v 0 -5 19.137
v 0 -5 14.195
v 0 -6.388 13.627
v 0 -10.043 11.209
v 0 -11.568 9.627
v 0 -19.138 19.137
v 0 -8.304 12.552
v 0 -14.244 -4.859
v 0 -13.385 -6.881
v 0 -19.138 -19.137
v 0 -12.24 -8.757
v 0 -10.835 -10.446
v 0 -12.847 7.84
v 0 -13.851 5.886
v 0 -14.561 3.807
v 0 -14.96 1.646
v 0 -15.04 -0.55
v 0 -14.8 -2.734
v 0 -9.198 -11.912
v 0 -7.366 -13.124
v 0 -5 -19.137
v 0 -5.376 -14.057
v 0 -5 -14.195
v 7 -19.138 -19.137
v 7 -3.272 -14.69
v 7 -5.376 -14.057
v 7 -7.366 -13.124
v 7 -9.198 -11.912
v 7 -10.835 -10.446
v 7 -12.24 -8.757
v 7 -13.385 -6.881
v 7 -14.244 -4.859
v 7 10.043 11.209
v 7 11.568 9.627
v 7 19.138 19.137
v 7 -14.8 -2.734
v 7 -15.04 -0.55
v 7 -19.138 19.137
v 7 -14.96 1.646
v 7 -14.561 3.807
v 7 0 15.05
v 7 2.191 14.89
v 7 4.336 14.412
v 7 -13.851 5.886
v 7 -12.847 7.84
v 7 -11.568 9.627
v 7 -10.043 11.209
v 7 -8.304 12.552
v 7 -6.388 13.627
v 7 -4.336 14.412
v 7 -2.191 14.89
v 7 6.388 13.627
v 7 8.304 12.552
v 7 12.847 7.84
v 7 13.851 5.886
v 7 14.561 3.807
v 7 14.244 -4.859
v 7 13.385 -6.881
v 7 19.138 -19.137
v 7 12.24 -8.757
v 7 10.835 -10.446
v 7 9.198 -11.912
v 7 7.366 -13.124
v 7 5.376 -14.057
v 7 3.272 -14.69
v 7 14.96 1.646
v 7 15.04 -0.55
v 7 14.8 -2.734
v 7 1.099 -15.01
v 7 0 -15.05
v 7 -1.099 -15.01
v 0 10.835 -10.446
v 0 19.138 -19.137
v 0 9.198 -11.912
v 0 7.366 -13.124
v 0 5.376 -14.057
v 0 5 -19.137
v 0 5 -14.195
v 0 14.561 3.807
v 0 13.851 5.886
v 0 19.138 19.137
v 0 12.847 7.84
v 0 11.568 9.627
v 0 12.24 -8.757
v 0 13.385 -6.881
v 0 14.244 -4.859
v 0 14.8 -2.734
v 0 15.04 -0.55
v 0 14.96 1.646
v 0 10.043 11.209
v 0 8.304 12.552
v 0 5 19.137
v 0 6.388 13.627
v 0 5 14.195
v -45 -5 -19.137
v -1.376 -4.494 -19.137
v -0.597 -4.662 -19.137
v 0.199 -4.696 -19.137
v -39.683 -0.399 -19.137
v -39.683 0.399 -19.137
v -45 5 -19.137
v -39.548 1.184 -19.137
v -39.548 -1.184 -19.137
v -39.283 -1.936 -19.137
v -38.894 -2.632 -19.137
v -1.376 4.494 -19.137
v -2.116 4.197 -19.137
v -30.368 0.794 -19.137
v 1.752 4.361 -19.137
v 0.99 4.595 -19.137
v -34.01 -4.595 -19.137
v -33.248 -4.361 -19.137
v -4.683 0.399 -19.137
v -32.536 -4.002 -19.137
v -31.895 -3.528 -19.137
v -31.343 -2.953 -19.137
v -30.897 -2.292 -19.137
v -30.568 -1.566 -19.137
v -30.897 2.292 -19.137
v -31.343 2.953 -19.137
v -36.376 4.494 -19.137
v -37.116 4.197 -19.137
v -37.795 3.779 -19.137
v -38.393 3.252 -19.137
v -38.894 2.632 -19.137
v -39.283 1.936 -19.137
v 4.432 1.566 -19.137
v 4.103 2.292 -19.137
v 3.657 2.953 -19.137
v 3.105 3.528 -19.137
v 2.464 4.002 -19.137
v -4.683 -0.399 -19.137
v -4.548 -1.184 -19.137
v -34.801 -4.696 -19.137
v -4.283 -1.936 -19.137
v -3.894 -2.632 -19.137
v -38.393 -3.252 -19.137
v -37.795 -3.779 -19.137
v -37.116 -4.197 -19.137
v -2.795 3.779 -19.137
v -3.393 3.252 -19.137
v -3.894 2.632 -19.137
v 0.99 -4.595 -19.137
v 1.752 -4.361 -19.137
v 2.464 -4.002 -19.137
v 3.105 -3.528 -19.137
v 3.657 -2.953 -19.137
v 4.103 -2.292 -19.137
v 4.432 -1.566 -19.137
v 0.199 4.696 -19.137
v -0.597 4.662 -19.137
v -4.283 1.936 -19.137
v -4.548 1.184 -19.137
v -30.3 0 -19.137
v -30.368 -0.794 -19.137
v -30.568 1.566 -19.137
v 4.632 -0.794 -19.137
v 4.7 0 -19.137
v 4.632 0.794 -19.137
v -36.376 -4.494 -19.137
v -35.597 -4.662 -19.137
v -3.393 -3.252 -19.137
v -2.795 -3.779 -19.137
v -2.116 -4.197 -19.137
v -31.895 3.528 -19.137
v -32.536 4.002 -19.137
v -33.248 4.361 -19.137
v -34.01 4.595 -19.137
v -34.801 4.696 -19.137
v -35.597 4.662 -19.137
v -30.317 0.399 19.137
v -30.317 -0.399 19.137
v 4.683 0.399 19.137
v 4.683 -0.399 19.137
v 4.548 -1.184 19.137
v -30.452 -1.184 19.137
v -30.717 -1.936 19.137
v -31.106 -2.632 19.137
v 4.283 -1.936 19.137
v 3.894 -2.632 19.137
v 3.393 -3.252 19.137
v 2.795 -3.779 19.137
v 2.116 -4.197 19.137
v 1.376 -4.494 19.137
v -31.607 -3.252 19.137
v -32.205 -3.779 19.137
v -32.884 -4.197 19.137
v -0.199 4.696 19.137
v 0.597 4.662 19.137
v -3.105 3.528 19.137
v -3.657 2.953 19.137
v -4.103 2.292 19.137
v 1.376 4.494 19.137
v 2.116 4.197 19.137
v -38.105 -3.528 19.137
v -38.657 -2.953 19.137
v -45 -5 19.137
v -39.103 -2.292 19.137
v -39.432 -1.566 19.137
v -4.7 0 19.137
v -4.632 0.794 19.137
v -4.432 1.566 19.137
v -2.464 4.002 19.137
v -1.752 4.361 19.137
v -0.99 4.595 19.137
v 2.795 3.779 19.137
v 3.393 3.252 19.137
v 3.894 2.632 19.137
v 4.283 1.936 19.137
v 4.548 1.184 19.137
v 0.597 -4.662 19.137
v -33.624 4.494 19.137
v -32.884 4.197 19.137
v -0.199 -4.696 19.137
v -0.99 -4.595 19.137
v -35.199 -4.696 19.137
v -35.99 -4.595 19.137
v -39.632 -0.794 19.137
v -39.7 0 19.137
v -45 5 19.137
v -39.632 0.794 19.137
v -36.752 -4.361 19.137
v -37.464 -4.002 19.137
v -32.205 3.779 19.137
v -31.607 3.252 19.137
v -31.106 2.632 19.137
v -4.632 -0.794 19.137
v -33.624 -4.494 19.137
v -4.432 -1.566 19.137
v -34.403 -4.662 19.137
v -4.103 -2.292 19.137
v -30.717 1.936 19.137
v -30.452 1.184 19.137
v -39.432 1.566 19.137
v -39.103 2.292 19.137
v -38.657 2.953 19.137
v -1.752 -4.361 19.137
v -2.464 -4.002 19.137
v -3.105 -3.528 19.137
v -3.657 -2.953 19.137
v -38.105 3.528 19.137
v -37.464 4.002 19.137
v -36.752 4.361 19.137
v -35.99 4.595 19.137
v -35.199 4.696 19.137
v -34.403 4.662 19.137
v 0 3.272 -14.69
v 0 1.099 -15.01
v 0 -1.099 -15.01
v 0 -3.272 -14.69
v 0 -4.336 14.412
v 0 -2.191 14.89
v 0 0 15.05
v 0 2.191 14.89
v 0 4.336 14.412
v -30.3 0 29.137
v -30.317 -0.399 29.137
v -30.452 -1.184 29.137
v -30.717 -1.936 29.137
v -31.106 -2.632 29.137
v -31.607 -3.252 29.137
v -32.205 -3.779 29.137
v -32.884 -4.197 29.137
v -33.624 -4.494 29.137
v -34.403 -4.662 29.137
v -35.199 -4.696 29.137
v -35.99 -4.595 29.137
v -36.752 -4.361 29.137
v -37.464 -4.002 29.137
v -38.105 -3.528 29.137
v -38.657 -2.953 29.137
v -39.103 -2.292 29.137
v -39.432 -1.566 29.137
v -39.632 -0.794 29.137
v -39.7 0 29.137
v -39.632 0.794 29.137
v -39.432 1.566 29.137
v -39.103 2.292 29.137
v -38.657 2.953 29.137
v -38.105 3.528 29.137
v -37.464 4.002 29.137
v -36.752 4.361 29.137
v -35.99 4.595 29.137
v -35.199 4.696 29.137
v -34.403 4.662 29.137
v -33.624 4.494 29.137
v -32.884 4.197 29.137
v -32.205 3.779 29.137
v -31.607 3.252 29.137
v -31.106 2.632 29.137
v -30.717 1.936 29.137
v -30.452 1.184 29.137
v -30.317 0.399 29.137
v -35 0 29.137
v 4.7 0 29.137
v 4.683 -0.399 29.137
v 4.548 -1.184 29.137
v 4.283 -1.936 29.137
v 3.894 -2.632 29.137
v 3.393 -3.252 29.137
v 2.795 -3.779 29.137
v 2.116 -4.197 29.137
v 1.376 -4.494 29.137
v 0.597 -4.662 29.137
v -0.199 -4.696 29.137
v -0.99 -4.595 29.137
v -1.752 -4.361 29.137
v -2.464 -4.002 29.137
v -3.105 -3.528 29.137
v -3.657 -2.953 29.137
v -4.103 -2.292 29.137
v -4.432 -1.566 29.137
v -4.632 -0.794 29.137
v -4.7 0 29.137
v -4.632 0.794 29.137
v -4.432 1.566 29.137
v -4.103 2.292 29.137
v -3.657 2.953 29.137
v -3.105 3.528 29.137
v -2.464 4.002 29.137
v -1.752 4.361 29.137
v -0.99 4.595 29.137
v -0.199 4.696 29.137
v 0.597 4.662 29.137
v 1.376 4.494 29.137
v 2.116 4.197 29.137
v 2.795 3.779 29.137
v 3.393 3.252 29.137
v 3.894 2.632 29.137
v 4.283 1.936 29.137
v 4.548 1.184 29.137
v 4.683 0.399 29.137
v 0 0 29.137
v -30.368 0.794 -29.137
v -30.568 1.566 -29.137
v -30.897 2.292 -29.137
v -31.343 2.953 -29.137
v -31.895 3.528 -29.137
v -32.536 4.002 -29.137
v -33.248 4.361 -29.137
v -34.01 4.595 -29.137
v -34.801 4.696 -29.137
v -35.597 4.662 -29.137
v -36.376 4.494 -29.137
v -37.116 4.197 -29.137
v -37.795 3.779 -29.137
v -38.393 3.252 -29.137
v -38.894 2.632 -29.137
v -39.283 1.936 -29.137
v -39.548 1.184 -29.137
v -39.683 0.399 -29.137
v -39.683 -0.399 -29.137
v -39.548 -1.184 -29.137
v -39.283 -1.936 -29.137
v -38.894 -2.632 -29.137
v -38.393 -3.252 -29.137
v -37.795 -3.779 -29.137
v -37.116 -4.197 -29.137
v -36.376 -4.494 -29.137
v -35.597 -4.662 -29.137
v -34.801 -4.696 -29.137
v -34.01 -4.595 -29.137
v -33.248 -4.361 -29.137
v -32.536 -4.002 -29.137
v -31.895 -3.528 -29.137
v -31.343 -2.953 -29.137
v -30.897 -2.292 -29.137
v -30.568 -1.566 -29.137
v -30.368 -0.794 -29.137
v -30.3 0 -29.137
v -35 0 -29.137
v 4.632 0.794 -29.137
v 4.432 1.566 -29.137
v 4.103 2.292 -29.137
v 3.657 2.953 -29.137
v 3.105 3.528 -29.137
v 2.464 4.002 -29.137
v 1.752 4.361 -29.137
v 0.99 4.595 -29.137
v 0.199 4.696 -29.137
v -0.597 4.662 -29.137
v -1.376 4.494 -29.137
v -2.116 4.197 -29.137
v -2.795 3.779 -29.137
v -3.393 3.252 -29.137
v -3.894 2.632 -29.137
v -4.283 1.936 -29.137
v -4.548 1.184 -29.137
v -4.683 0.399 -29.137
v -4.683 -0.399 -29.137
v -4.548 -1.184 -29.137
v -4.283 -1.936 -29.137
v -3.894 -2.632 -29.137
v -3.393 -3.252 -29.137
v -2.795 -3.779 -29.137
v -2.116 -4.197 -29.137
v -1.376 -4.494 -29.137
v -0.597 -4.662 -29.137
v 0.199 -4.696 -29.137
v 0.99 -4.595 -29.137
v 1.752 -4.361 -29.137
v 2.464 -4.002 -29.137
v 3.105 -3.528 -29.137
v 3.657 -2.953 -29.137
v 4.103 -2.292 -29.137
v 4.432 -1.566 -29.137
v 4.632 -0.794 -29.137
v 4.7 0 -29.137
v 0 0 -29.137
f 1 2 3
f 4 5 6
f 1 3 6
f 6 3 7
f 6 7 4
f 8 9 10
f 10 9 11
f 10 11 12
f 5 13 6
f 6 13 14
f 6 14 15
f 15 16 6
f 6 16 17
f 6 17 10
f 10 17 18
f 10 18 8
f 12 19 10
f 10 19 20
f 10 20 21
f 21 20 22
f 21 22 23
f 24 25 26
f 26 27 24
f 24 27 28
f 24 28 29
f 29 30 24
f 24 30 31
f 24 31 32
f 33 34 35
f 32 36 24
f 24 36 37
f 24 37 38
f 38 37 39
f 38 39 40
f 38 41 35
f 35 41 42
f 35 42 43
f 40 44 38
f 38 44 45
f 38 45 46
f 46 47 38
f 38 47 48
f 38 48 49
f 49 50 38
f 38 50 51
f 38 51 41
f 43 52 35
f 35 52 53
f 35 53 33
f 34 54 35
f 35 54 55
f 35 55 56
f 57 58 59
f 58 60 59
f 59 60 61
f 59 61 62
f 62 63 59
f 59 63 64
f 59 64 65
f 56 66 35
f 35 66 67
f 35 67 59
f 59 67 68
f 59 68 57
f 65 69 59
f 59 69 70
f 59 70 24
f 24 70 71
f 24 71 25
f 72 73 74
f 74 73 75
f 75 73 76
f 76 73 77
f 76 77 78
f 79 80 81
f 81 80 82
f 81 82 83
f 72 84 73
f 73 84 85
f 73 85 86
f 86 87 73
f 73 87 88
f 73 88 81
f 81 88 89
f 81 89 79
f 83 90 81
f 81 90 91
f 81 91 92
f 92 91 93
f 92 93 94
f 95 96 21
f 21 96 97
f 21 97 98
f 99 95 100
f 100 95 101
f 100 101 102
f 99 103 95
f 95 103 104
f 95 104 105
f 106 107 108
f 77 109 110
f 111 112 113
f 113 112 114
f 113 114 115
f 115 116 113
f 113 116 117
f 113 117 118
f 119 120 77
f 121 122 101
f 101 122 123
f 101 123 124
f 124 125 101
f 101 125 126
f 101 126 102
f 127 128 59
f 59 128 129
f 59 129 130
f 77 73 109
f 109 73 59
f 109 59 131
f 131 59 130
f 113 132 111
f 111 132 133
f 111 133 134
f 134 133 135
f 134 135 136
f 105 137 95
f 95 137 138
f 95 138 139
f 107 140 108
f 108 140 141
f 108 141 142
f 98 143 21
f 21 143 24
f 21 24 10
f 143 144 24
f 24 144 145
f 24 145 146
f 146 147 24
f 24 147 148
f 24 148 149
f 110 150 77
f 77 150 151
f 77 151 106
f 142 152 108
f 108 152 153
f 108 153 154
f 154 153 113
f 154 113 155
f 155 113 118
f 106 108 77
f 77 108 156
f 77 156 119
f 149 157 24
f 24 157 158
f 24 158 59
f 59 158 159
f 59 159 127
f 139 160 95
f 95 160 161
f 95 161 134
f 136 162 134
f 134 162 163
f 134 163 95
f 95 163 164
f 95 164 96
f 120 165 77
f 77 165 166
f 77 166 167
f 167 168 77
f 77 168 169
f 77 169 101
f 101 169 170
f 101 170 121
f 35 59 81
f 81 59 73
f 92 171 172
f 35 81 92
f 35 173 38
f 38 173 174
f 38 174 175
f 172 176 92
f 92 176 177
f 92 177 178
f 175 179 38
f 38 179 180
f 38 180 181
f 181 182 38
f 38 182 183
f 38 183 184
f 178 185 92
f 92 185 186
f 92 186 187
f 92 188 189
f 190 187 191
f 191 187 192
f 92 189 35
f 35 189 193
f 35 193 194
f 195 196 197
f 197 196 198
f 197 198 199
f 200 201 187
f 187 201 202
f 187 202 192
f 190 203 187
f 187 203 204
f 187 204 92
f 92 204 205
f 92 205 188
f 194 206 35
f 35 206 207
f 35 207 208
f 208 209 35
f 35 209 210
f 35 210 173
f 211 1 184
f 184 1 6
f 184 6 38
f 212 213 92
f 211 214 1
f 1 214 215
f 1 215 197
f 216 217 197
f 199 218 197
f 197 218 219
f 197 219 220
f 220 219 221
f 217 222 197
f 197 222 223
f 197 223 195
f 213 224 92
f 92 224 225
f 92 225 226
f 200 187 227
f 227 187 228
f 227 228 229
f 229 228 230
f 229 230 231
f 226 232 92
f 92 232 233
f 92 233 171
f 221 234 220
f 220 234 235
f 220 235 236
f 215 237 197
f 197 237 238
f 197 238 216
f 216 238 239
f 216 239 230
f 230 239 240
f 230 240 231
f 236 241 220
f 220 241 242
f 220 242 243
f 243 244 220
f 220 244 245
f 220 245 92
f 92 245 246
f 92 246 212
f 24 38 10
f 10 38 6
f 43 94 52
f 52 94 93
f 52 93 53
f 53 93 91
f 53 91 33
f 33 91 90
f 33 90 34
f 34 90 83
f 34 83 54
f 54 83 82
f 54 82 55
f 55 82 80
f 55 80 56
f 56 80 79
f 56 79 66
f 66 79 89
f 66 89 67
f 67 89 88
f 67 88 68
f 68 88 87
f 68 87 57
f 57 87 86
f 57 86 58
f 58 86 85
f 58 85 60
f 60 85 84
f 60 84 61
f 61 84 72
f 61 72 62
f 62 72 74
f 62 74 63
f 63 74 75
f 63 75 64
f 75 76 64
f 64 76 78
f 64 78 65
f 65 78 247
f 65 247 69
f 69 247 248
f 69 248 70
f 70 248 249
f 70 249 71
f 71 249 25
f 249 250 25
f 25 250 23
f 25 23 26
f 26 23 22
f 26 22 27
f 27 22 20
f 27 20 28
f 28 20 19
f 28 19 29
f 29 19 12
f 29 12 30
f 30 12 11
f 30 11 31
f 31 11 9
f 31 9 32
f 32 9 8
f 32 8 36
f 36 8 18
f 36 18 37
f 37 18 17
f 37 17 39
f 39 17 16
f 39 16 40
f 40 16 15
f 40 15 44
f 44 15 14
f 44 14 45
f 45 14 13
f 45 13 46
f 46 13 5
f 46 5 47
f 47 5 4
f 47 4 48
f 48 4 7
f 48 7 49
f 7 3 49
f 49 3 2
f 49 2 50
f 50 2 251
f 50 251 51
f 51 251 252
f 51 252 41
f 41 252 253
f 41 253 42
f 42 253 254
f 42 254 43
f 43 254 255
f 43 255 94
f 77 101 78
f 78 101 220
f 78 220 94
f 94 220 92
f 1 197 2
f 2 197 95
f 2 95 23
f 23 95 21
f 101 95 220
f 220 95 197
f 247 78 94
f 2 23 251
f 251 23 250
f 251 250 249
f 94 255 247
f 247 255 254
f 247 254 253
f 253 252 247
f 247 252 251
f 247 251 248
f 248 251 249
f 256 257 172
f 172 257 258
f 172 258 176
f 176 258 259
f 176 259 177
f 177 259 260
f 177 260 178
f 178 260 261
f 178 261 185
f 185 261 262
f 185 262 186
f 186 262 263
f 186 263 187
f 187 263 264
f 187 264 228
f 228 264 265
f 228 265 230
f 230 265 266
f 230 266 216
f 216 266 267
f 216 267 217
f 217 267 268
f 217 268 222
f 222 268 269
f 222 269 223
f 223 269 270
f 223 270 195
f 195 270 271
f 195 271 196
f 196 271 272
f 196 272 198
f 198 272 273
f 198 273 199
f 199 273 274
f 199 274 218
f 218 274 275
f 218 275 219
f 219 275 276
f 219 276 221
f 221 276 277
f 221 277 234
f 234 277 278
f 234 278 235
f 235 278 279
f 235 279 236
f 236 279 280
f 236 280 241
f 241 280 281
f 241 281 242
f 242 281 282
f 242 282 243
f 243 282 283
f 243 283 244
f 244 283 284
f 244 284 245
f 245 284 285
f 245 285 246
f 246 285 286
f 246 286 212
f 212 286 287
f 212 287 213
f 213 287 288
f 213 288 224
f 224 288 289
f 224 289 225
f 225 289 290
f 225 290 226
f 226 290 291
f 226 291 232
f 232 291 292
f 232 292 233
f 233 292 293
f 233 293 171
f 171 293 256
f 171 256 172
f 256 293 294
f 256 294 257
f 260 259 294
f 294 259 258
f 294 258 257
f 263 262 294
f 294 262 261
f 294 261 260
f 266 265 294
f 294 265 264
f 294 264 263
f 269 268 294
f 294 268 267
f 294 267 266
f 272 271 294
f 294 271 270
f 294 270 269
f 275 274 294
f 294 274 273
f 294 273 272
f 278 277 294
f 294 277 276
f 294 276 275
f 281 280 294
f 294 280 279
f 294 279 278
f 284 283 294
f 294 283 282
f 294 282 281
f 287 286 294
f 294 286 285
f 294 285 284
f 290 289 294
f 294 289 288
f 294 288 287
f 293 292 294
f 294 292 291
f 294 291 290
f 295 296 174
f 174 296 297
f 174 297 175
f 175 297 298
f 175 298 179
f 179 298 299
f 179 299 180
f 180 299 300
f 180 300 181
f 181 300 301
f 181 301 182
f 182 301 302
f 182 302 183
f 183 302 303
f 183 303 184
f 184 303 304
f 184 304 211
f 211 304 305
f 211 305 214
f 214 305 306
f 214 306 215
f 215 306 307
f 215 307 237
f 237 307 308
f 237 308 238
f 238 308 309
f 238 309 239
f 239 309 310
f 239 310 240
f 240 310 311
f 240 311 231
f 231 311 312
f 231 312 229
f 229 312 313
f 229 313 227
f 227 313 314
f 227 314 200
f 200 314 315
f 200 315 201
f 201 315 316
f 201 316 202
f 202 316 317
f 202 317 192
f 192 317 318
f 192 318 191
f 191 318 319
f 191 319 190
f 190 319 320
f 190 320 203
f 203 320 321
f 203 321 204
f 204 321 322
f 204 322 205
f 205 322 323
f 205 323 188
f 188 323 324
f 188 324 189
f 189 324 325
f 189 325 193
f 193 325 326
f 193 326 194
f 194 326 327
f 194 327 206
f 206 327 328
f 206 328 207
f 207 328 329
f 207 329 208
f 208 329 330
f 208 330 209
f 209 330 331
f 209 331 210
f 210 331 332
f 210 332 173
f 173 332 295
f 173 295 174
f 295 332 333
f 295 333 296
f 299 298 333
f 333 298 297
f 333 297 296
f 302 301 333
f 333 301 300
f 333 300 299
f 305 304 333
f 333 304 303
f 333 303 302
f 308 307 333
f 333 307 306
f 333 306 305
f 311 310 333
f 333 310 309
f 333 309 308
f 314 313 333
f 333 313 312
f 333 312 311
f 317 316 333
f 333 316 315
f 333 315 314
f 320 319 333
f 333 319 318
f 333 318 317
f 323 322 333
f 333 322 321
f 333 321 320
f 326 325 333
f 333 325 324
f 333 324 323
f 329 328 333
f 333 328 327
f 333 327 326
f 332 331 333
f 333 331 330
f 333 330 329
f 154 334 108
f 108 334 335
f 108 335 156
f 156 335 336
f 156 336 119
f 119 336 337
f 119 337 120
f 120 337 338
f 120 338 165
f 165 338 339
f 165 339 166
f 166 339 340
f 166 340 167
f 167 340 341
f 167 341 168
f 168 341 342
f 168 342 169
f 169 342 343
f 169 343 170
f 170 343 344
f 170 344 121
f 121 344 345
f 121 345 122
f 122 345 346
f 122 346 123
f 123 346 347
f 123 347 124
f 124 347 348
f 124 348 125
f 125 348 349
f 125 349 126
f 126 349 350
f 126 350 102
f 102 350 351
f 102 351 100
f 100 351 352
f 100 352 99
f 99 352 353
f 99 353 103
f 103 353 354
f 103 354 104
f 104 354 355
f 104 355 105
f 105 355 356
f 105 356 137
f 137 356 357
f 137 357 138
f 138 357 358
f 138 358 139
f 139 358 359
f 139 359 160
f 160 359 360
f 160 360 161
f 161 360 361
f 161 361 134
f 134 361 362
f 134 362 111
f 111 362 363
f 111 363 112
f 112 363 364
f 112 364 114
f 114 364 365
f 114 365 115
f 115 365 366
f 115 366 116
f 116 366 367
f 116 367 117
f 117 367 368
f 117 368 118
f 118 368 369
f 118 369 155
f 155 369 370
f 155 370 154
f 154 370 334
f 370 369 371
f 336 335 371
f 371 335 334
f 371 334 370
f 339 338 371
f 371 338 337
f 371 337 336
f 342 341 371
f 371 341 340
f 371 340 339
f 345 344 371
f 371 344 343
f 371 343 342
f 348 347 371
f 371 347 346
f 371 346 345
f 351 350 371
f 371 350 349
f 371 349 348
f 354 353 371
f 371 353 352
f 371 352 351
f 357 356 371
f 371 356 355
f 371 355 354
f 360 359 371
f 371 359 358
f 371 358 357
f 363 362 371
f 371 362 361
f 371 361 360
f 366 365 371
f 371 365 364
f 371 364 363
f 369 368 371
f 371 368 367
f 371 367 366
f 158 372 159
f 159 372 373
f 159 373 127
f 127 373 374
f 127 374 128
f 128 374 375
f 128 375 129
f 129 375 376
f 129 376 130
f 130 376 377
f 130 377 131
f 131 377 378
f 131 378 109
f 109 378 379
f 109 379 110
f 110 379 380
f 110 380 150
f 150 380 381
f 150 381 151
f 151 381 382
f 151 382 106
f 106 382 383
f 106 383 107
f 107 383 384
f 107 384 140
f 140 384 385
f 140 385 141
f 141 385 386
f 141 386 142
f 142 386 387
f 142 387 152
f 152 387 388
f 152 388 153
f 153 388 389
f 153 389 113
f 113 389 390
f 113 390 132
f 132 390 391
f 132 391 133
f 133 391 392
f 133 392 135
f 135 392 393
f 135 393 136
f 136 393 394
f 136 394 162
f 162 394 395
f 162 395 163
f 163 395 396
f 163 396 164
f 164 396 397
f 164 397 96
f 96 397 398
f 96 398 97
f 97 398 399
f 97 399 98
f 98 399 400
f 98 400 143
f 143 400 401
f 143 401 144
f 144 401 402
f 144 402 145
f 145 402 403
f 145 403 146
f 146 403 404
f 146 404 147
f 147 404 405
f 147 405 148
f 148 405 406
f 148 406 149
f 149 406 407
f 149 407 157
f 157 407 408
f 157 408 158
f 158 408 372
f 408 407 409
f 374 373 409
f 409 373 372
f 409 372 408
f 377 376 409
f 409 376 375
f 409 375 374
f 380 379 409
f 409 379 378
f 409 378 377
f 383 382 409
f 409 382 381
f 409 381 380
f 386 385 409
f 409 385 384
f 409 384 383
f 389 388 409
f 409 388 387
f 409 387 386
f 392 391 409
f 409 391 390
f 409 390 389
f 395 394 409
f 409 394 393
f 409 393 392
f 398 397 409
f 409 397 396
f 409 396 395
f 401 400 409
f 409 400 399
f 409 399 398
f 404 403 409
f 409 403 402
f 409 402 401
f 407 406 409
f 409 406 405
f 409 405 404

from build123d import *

# Parameters (mm, degrees)
SKETCH1_W           = 38.275
SKETCH1_H           = 38.275
SKETCH1_R           = 15.05
BOSS_EXTRUDE1_DEPTH = 7
SKETCH2_W           = 38.275
SKETCH2_H           = 10
BOSS_EXTRUDE2_DEPTH = 45
SKETCH3_R           = 4.7
BOSS_EXTRUDE3_DEPTH = 10


with BuildPart() as part:
    # Sketch1 → Boss-Extrude1 (new body)
    with BuildSketch(Plane(origin=(0, 0, 0), x_dir=(0, 0, -1), z_dir=(1, 0, 0))):
        Rectangle(SKETCH1_W, SKETCH1_H)
        Circle(SKETCH1_R, mode=Mode.SUBTRACT)
    extrude(amount=BOSS_EXTRUDE1_DEPTH)

    # Sketch2 → Boss-Extrude2 (add)
    with BuildSketch(Plane.ZY):
        Rectangle(SKETCH2_W, SKETCH2_H)
    extrude(amount=BOSS_EXTRUDE2_DEPTH)

    # Sketch3 → Boss-Extrude3 (add)
    with BuildSketch(Plane.XY.offset(19.1375)):
        with Locations(Location((-35, 0, 0), (0, 0, 180))):
            Circle(SKETCH3_R)
        with Locations(Location((0, 0, 0), (0, 0, 180))):
            Circle(SKETCH3_R)
    boss_extrude3 = extrude(amount=BOSS_EXTRUDE3_DEPTH)

    # Mirror1: Boss-Extrude3 across plane
    add(boss_extrude3.mirror(Plane.XY))


solid = part.part
